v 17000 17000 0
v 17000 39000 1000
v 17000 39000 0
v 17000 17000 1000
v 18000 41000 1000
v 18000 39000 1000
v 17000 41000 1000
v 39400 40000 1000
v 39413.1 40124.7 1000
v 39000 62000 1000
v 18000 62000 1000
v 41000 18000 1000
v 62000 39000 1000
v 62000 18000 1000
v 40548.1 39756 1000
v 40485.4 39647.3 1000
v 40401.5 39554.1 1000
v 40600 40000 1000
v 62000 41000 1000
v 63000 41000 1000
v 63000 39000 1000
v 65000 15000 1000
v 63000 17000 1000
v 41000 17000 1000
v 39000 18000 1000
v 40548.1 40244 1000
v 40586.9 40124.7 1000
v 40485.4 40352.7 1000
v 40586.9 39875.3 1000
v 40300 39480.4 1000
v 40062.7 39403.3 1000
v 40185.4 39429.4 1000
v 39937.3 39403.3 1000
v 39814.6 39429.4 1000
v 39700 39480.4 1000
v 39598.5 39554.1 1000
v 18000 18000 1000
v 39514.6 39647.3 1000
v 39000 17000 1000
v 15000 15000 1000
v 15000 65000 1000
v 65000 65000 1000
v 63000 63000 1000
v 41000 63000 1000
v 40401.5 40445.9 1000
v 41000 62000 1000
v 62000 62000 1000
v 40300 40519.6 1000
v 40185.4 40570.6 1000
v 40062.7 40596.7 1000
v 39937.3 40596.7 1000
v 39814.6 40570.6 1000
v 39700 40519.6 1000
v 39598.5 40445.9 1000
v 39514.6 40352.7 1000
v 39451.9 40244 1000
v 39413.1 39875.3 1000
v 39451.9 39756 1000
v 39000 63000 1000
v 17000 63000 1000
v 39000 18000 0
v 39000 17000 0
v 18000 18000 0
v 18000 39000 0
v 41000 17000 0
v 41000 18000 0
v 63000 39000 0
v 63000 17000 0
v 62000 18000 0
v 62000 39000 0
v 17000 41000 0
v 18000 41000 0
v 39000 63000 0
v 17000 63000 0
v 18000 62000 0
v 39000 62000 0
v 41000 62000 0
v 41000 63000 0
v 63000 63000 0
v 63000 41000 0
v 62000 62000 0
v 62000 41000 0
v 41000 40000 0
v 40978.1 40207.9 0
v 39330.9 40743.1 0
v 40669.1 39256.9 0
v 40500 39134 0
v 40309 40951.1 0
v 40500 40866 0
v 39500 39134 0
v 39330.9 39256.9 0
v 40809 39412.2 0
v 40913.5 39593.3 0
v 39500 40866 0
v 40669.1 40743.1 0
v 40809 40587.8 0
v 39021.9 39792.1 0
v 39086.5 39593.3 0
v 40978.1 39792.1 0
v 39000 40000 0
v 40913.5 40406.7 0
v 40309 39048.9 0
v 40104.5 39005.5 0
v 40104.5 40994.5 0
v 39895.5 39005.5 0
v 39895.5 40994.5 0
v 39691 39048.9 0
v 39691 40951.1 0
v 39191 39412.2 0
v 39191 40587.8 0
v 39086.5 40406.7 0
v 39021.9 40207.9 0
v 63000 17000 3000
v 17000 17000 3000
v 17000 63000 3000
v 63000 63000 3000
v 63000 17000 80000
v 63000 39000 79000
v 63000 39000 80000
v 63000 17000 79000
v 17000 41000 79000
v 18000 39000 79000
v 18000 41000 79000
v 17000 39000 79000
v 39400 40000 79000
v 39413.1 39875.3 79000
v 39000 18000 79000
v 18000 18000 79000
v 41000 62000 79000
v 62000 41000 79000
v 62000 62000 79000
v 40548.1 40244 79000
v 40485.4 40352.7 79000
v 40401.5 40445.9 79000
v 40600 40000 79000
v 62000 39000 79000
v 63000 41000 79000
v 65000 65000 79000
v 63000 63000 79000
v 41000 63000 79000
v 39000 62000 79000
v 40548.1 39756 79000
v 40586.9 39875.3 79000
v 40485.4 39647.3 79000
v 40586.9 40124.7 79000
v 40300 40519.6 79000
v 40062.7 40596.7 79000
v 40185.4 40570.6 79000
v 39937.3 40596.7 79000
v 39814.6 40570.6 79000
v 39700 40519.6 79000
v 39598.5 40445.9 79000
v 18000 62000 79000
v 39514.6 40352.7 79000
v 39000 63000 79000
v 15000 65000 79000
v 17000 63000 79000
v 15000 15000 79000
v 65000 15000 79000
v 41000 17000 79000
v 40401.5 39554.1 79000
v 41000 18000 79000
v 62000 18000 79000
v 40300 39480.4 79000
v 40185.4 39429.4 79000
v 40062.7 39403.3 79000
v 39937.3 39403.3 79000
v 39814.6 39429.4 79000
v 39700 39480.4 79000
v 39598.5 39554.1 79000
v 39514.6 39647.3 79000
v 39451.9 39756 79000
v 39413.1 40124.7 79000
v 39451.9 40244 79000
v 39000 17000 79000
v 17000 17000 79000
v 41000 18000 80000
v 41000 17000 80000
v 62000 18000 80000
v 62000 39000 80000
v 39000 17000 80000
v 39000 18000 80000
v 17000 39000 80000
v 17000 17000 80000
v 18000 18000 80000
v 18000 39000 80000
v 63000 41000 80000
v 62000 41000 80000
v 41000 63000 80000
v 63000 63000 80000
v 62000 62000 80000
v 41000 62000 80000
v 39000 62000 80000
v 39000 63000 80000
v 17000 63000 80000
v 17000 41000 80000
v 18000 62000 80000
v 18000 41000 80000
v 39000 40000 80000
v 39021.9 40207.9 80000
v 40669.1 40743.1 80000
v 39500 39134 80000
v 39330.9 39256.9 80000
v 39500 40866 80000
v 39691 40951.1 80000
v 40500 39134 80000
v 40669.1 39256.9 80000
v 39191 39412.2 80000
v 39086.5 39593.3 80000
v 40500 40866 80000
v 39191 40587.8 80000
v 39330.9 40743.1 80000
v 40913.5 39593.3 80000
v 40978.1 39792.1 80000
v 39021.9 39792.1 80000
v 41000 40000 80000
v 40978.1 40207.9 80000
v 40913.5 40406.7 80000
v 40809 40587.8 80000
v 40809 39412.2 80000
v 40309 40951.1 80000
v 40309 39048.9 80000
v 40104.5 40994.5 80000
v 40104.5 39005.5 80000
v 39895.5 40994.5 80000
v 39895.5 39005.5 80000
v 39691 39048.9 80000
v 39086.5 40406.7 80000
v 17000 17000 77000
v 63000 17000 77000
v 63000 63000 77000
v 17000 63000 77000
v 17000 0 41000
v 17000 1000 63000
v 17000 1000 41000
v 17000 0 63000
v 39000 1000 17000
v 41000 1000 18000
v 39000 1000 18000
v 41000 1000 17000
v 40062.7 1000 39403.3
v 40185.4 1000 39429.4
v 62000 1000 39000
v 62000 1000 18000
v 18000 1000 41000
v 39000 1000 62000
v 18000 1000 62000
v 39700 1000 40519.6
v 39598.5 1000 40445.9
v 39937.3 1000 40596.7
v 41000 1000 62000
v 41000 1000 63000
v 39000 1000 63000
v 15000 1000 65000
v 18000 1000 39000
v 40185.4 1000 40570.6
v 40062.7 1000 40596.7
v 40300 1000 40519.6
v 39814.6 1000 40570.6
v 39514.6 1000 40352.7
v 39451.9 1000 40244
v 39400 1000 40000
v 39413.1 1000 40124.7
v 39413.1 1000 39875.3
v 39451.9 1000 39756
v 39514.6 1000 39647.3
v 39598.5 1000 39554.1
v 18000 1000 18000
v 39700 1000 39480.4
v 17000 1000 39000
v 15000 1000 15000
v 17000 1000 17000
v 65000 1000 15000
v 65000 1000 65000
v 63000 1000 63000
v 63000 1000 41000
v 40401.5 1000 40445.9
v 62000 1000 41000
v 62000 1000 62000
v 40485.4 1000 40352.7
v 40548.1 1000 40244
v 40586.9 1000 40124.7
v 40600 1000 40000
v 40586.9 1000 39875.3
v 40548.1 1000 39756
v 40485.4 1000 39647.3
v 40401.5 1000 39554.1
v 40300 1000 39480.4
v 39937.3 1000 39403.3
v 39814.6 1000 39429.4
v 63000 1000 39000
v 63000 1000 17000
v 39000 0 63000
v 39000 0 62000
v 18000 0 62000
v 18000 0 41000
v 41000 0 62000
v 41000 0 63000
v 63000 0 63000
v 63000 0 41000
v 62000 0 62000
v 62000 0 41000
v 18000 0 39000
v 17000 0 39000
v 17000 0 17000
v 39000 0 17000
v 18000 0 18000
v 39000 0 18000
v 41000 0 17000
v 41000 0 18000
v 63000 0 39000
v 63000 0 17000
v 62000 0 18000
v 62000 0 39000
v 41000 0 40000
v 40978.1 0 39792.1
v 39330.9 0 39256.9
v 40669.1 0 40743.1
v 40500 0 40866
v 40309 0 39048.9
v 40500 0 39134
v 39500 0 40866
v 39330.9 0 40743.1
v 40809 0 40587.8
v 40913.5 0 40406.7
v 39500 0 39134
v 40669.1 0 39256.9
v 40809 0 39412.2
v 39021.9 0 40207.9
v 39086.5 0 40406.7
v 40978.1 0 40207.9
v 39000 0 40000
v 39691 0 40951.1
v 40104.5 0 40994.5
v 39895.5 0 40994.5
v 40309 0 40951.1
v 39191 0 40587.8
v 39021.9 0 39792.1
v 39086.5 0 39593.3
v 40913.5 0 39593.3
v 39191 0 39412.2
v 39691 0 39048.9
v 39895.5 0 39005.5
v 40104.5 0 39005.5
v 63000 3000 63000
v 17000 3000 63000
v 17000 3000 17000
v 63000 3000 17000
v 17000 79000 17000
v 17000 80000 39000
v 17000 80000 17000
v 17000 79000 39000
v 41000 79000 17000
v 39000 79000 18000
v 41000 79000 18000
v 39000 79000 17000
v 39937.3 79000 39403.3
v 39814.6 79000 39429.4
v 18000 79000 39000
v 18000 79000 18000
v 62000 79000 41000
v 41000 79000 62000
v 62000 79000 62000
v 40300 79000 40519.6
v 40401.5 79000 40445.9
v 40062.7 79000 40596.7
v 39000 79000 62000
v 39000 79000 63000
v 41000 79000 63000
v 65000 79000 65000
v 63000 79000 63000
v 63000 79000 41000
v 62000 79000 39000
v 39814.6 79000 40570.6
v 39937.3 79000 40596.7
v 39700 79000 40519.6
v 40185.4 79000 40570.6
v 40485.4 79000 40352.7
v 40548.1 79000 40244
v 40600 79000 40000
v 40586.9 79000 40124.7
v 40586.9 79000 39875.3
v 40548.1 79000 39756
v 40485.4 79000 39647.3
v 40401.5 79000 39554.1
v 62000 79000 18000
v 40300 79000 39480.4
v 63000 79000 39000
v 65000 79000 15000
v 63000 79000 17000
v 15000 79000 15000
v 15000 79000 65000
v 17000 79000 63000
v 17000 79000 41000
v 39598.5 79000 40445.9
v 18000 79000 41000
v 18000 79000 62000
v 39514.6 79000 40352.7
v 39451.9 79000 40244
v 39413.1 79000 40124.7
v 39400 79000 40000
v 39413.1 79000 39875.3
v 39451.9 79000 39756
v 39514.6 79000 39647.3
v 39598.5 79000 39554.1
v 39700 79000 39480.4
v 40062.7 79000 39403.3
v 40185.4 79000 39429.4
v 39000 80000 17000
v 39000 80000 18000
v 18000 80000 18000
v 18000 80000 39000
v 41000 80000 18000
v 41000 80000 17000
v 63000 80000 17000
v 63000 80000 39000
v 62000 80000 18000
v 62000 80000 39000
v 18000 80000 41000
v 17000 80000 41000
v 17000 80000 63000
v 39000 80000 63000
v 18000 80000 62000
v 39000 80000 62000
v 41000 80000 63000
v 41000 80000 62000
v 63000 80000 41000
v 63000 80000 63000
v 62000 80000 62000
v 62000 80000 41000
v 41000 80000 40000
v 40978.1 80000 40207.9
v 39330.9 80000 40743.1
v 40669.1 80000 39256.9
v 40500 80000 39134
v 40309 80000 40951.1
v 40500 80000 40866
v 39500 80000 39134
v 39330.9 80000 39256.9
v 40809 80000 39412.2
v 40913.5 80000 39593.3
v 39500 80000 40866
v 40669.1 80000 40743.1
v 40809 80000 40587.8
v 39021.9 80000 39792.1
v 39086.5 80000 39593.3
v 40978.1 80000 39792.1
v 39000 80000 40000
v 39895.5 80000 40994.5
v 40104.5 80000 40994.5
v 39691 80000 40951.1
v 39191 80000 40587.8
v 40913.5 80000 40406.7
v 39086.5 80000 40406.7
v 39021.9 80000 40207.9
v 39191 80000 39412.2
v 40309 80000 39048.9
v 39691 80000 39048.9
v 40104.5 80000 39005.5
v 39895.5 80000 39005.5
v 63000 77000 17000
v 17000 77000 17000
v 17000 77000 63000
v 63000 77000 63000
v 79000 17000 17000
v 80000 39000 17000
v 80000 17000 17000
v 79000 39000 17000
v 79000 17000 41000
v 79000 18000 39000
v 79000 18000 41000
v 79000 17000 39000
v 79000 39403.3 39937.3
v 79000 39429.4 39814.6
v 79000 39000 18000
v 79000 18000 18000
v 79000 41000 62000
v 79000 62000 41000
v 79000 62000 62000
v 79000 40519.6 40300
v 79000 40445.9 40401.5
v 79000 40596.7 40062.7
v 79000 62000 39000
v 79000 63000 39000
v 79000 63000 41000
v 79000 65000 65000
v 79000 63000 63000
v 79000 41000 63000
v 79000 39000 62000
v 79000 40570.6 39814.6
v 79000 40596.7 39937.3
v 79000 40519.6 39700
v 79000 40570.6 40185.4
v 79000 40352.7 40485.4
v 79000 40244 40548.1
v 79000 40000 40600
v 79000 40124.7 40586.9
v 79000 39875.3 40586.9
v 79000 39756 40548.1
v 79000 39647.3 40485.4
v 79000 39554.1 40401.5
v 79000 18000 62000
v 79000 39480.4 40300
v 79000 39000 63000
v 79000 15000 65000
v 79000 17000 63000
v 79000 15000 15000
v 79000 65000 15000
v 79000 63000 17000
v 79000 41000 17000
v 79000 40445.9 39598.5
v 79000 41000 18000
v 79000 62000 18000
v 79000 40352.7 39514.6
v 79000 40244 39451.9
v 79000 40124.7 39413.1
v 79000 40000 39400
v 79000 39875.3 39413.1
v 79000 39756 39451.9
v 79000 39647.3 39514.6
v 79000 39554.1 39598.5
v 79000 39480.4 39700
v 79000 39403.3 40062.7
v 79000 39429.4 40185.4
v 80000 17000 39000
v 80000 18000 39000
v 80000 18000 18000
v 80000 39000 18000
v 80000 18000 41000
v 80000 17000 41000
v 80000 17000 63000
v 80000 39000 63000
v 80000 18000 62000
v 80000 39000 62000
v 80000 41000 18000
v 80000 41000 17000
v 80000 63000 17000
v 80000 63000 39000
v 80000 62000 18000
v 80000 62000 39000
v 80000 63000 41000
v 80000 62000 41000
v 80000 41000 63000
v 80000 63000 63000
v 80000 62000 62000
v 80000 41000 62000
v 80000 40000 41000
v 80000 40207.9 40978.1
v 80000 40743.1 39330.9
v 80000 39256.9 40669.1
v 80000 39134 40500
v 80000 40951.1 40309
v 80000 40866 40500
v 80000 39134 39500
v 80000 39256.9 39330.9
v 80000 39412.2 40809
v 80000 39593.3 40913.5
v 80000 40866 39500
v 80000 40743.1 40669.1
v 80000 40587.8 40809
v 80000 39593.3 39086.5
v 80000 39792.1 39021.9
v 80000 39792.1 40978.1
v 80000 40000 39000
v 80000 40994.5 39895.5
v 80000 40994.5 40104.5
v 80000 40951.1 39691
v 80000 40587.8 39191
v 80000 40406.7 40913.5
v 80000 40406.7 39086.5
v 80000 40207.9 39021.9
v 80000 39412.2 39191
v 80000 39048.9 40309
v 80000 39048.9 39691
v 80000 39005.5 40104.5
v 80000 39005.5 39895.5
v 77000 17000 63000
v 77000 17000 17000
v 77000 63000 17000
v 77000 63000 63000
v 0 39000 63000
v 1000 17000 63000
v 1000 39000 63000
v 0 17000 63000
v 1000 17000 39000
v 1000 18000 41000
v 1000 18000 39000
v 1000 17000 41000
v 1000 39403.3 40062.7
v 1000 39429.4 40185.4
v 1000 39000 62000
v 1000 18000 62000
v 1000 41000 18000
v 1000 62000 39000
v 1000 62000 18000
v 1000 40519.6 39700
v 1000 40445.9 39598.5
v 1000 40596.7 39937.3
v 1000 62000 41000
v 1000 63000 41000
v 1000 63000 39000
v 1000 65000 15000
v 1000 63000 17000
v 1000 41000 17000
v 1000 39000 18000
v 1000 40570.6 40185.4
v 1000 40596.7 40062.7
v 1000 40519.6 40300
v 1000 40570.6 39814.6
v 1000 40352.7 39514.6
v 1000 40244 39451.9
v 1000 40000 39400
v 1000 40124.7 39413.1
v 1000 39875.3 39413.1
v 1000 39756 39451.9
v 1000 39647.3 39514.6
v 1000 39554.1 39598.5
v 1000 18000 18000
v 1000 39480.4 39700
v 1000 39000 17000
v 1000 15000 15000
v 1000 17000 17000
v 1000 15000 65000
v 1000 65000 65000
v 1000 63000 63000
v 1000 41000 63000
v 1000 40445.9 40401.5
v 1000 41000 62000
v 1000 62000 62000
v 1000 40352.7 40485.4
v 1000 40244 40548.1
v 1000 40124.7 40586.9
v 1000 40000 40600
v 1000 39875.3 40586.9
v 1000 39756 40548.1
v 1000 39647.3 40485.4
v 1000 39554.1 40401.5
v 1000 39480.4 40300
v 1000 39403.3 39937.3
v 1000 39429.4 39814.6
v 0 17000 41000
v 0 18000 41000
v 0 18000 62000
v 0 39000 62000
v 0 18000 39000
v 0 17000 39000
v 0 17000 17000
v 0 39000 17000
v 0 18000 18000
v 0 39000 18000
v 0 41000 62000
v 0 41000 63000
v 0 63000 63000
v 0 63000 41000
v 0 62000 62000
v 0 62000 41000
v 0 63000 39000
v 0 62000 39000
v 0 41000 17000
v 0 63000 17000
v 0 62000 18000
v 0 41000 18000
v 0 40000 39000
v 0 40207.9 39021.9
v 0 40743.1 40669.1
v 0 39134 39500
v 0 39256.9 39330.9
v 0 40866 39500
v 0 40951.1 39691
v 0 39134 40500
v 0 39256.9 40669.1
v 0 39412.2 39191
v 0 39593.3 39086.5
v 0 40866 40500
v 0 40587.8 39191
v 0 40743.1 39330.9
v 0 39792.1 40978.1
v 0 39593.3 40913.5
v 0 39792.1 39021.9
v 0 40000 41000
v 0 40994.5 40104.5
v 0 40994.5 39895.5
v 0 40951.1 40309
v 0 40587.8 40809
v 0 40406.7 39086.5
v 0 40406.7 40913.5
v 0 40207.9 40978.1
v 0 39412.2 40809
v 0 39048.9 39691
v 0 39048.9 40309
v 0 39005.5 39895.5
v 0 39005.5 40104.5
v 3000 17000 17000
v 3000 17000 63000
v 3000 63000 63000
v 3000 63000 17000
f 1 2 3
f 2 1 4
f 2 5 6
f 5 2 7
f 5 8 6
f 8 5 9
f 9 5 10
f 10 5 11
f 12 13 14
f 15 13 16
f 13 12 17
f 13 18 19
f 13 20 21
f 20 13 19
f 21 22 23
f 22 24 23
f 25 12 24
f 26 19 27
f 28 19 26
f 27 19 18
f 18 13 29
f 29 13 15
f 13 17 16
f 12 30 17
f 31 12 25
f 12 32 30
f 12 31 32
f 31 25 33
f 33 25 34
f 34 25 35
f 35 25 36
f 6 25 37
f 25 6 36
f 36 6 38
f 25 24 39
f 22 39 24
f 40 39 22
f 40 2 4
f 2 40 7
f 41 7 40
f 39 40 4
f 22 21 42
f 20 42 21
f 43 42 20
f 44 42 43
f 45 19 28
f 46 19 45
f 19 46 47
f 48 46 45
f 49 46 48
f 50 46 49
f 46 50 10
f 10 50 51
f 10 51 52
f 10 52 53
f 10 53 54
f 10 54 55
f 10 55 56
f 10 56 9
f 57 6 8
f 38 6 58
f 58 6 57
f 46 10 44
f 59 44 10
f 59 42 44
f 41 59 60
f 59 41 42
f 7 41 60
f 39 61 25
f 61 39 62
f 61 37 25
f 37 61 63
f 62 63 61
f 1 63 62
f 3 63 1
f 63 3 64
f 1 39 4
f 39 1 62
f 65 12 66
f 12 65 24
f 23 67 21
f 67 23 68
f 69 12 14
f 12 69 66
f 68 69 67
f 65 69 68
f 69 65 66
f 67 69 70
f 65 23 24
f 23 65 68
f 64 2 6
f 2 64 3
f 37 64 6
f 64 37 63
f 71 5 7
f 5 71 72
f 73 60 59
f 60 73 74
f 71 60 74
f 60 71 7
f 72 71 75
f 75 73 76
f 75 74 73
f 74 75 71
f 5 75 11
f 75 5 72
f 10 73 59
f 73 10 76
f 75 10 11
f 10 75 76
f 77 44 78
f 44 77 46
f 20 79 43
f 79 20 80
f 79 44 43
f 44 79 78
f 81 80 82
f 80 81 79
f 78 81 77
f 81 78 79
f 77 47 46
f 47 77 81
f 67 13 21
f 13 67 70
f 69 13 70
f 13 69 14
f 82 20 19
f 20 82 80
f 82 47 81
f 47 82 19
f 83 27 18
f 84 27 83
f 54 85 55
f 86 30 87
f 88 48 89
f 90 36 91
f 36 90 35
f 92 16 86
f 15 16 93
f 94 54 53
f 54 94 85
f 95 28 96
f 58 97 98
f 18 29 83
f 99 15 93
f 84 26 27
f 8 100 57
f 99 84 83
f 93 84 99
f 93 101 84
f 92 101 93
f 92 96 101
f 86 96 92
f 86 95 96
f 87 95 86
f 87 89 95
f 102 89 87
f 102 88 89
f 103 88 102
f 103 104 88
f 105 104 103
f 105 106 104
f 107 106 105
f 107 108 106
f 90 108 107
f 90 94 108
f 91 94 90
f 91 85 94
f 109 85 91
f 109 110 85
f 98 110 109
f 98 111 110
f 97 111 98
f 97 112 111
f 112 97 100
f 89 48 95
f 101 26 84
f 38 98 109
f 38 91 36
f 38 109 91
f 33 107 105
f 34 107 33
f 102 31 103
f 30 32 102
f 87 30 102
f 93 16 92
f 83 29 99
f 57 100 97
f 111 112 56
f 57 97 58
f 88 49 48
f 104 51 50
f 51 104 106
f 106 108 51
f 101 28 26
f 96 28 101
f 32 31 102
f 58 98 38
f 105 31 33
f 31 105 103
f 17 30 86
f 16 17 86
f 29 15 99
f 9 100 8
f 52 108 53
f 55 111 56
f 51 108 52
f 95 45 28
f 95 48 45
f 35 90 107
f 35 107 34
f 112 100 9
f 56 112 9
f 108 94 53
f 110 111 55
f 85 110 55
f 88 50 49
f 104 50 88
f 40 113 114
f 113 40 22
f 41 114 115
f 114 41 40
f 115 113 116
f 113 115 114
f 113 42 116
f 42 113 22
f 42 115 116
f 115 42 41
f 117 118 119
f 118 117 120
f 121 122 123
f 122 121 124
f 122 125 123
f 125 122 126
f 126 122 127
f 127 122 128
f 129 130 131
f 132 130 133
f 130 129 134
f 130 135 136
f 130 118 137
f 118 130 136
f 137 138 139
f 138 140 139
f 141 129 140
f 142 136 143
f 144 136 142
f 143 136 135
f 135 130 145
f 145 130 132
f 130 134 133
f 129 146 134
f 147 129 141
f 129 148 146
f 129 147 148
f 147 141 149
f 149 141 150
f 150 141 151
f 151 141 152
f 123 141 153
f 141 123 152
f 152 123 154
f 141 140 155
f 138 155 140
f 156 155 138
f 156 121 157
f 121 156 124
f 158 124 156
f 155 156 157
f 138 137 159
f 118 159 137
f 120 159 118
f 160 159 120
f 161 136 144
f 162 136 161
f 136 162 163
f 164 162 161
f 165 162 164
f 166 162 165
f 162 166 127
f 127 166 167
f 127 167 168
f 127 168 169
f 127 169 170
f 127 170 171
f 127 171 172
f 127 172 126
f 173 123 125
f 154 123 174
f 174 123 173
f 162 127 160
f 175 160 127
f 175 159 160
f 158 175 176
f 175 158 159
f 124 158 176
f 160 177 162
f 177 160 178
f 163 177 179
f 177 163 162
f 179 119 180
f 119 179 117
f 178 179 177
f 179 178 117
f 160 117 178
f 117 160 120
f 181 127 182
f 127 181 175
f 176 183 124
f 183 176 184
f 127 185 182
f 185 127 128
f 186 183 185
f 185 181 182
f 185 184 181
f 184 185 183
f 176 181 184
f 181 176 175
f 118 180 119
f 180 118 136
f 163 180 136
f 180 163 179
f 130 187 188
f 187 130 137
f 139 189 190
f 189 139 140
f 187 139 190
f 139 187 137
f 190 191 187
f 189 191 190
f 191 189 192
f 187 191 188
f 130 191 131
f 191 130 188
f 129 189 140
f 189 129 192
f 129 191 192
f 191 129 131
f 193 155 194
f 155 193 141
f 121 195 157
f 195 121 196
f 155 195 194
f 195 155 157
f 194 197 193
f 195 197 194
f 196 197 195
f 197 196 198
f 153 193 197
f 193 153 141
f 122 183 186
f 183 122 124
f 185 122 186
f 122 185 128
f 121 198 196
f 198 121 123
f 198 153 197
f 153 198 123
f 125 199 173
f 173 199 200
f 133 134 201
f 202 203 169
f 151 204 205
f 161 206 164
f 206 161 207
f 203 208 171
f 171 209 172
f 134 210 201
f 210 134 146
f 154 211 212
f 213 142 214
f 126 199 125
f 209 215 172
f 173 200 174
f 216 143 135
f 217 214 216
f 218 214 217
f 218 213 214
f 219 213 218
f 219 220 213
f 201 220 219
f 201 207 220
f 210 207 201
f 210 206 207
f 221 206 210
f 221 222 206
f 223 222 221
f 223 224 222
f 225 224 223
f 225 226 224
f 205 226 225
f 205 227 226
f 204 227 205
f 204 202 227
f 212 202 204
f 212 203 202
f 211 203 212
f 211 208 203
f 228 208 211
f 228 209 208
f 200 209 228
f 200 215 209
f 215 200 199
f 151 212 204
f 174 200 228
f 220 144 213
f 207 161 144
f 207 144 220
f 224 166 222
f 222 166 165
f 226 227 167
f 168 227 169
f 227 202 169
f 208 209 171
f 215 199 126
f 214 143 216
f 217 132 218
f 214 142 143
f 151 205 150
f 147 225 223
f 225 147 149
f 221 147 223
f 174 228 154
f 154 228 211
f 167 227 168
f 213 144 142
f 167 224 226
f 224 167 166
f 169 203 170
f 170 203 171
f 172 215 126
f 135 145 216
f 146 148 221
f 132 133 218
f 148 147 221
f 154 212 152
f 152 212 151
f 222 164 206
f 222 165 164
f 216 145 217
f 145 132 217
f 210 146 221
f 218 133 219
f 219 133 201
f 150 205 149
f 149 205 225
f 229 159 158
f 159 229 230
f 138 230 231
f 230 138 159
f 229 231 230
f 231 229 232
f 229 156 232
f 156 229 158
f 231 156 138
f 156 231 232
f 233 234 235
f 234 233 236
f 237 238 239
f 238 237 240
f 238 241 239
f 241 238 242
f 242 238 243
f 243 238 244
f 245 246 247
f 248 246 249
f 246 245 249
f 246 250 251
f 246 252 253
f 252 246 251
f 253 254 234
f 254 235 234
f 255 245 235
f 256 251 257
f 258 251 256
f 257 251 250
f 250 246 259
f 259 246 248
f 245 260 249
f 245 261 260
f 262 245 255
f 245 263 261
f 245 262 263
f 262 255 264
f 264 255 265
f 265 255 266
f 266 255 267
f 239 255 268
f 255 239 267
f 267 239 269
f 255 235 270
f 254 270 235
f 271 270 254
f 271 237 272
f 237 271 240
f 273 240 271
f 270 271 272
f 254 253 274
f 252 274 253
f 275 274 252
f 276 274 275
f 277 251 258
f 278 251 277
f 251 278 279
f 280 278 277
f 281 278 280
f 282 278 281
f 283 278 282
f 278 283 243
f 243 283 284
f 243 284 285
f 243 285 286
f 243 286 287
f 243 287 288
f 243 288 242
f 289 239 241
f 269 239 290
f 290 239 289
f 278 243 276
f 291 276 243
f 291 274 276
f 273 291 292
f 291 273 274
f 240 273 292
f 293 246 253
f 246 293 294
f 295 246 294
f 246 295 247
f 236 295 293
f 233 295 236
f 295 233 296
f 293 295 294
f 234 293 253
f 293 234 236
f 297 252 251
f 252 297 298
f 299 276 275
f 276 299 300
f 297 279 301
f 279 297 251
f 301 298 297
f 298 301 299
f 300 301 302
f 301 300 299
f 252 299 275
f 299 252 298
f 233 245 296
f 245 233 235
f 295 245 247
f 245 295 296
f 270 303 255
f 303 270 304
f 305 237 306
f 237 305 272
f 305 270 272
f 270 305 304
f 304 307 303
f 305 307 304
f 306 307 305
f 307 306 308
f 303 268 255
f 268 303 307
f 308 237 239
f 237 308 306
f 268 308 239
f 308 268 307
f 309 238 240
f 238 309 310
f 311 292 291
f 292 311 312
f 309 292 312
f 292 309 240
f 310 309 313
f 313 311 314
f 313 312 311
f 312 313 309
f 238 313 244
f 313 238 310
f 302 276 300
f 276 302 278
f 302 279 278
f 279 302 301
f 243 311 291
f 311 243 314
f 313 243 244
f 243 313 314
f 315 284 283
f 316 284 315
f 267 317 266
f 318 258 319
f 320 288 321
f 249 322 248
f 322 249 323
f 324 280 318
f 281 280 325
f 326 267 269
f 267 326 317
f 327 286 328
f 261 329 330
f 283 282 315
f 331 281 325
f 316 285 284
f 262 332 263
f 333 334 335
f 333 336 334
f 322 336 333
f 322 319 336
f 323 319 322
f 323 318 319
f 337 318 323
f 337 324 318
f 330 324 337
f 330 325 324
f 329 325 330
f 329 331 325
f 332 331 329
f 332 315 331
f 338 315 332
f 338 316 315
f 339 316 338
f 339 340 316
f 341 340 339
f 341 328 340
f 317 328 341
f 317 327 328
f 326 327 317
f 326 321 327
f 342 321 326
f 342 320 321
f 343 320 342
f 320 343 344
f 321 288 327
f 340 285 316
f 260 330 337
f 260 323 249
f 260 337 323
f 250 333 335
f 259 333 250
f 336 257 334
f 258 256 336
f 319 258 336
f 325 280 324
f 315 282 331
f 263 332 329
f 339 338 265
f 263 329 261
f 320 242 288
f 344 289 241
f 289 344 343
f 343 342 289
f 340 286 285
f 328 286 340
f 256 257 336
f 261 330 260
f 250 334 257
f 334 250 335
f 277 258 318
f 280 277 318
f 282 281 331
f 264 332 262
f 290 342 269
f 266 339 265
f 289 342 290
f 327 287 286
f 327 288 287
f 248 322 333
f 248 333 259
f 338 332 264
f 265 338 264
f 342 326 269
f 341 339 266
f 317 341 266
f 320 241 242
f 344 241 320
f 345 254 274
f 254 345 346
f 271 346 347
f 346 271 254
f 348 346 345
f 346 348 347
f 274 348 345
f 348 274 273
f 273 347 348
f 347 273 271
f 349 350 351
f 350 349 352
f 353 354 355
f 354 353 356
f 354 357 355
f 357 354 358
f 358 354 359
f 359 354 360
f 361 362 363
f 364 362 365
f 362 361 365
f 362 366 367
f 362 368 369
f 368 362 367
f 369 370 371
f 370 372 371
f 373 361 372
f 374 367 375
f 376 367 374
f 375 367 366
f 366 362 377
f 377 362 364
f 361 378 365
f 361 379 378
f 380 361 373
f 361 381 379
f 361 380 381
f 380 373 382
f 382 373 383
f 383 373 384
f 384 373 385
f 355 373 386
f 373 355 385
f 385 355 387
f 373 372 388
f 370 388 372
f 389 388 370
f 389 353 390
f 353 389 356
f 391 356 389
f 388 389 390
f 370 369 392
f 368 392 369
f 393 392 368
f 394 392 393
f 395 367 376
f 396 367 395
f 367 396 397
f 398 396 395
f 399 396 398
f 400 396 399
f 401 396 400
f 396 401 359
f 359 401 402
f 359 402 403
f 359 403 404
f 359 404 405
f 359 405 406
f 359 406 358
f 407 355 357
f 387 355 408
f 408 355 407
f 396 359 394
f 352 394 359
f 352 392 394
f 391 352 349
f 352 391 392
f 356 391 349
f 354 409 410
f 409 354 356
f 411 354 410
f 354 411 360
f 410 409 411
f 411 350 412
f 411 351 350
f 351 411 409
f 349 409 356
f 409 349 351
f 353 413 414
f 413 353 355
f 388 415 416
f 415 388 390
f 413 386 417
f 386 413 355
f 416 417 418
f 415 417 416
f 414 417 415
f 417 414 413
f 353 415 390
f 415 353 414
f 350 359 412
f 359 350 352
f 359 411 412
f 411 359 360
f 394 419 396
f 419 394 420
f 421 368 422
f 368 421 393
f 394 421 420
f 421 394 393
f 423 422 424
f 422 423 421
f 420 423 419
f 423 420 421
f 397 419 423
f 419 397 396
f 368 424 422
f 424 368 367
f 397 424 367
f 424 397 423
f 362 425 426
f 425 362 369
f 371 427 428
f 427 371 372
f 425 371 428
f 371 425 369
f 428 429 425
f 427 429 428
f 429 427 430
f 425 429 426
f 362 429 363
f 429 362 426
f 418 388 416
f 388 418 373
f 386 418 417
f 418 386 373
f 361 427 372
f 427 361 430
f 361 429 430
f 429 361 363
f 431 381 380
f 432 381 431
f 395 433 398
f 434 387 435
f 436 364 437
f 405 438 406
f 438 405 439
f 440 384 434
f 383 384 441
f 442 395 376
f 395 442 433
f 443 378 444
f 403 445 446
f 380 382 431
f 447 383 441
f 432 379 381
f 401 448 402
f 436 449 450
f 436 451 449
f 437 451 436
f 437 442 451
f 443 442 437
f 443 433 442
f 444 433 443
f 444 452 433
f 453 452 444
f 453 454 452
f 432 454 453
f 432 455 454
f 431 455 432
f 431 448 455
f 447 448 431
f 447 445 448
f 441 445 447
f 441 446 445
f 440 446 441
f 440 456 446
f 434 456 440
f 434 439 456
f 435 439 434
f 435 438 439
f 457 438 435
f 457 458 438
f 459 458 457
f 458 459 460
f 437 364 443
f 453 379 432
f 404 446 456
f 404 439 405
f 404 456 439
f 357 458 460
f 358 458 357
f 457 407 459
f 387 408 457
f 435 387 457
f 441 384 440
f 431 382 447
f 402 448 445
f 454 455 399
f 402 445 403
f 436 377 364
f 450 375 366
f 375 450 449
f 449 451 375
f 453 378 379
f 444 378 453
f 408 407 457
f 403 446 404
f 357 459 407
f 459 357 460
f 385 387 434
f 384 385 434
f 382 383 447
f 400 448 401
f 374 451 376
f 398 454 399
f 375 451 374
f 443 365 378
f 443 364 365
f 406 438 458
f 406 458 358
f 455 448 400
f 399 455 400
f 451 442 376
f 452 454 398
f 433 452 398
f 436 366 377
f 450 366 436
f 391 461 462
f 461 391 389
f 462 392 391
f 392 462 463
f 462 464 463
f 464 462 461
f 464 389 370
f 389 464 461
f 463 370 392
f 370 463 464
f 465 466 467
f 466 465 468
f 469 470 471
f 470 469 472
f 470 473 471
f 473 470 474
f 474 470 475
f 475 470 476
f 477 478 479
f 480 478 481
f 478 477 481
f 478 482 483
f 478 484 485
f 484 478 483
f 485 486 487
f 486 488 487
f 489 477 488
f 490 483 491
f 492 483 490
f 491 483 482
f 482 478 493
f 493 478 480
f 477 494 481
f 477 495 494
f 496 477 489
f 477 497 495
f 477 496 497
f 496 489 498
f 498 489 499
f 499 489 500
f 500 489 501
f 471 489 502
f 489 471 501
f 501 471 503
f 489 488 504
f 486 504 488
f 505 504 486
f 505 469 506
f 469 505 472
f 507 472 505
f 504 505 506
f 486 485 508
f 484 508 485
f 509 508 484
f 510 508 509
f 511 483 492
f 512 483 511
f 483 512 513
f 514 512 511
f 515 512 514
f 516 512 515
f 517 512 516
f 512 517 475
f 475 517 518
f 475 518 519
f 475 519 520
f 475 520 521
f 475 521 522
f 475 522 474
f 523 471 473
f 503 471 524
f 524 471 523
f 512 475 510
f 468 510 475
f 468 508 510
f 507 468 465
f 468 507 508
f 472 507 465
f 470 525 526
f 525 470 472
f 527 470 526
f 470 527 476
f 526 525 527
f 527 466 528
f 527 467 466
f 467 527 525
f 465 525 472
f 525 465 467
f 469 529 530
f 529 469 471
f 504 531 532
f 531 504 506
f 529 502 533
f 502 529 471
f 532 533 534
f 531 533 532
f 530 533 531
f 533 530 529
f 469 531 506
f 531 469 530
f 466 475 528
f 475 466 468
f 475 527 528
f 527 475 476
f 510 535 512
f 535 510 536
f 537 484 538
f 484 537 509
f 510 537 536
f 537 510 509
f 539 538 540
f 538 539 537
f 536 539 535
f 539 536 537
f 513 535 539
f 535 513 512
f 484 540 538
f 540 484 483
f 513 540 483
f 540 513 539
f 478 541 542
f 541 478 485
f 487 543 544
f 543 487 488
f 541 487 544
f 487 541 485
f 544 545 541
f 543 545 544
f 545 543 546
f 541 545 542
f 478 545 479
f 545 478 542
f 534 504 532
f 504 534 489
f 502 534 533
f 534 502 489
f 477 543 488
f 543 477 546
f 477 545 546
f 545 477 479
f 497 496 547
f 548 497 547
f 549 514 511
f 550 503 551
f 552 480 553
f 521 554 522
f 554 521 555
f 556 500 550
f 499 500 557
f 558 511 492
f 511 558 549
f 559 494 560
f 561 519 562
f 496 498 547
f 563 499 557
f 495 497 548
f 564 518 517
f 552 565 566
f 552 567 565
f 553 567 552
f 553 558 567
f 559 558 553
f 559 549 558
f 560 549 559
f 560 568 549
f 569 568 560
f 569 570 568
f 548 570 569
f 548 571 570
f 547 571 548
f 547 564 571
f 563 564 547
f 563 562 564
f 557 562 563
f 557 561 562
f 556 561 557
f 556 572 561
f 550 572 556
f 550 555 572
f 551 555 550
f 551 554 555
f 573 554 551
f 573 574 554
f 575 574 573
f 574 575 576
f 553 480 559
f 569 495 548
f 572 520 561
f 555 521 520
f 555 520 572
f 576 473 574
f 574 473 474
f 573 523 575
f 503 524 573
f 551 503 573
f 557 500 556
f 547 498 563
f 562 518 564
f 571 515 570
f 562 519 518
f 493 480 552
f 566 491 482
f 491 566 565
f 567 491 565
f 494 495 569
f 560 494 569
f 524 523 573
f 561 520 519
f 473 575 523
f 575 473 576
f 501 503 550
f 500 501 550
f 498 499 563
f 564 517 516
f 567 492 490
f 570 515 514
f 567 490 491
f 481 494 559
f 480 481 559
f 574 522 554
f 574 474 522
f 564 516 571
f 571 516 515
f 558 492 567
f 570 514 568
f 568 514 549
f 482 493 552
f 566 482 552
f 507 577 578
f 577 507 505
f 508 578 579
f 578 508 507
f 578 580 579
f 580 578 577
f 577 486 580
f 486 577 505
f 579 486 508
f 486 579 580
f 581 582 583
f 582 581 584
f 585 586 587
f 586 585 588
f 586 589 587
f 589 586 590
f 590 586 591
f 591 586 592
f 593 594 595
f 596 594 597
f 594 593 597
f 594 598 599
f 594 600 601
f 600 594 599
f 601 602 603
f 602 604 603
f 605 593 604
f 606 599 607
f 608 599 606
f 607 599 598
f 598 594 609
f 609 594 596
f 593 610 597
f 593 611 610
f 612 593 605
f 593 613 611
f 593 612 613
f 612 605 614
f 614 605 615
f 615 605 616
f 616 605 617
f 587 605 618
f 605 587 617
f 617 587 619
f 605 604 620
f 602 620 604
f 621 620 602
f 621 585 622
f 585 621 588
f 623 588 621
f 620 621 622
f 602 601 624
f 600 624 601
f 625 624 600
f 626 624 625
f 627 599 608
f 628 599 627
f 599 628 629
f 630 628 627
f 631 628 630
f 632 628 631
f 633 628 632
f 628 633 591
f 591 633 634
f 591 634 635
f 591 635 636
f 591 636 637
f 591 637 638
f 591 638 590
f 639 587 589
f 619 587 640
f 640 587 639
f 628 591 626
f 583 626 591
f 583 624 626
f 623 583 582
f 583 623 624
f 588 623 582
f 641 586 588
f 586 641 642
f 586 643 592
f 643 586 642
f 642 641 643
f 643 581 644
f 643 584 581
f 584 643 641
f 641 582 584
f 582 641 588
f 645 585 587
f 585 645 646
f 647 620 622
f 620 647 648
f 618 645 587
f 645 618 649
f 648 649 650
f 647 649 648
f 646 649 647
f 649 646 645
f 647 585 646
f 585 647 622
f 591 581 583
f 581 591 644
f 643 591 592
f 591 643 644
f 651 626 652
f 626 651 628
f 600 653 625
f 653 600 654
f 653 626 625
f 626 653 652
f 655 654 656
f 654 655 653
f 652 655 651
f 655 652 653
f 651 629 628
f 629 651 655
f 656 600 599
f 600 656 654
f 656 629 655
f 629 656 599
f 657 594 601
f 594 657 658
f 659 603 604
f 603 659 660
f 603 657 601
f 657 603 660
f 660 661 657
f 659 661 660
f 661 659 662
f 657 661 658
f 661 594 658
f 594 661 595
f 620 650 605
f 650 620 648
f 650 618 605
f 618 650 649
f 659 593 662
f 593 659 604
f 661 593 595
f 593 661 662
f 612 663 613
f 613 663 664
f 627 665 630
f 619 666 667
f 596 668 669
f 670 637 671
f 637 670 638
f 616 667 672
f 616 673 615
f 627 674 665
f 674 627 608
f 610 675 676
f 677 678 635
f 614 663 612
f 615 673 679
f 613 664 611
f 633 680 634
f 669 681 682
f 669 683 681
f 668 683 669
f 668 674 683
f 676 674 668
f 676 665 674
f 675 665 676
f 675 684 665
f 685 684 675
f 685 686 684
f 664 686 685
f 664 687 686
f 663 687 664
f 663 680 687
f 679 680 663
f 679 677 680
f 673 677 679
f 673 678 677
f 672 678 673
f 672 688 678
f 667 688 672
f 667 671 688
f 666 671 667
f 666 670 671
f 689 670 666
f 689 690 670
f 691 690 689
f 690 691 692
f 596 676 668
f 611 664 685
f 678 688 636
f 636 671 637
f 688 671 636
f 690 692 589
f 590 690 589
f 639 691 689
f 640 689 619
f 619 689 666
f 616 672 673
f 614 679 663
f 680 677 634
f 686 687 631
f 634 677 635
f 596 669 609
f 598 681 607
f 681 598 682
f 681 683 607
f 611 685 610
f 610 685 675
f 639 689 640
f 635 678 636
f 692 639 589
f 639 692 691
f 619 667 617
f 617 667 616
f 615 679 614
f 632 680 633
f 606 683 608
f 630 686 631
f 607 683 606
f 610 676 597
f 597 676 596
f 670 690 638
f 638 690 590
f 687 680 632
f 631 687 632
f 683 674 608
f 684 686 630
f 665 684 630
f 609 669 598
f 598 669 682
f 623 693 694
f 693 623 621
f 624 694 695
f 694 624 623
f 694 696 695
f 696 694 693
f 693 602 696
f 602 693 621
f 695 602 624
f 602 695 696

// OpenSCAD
// first version : plate for ware
// units : micrometers = 10^-6 m = 10^-3 mm
/* 
    3D
   **********   
  3     2
    7 6
    4 5
  0     1
 
    Dev
   **********   
   
   7 6
   4 5 6 7 4
   0 1 2 3 0
   3 2

    Coords
   **********   
   
0,1,3,2
4,5,1,0
7,6,5,4
5,6,2,1
6,7,3,2
7,4,0,3

*/

Show_Rendering_Error=true; 
// hauptplatte
l       = 50000             ; // length = x axis
w       = l                 ; // width = y axis
t       = 2000              ; // thickness
// central point
radius  = 1000              ; // radius
height  = 1000              ; // height
// borders
thick   = 1000              ; // thickness
// all plate 
delta   = 15000             ; // delta beetween plates



translate([delta,delta,0])   
    all_plate(l,w,t,radius,height,thick);

translate([delta+l,delta , 2* delta+ l])    
    rotate([0,180,0])
        all_plate(l,w,t,radius,height,thick);

translate([delta,0 , delta +l ])    
    rotate([-90,0,0])
        all_plate(l,l,t,radius,height,thick);

translate([delta, 2*delta + w , delta ])    
    rotate([90,0,0])
        all_plate(l,l,t,radius,height,thick);


translate([2*delta+l,delta , delta])    
    rotate([0,-90,0])
        all_plate(l,w,t,radius,height,thick);
translate([0, delta, delta+l])
    rotate([0,90,0])
        all_plate(l,w,t,radius,height,thick);


module all_plate(l,w,t,radius,height,thick){
    translate([l/2, w/2, 0]){ 
        color([1,0,0]) 
        cylinder(height,radius, radius*0.6); 
        };
    translate([t,t,0])
        border(l,thick, height, radius, t );

    translate([t+thick,t,0])
        rotate([0,0,90])
            border(w,thick, height, radius, t );

    translate([t,w-2*t+thick,0])
        border(l,thick, height, radius, t );

    translate([l-t,t,0])
        rotate([0,0,90])
            border(w,thick, height, radius, t );
        
    translate([0,0,height]) chamfered_plate(l,w,t);
    }

module border(length, thickness, height, radius, t){
    border_length = (length-2*t-2*radius)/2 ;
    color([0,1,0])
    cube([border_length , thickness, height]);
    translate([(length-2*t-2*radius)/2+2*radius,0,0])
        color([0,0,1])
        cube([border_length, thickness, height]);
    }
    
module chamfered_plate(l,w,t){
        
    polyhedron(
        points = [
            [0      ,0      ,0],        // 0
            [l      ,0      ,0],        // 1
            [l      ,w      ,0],        // 2
            [0      ,w      ,0],        // 3
            [t      ,t      ,t],        // 4
            [l-t    ,t      ,t],        // 5
            [l-t    ,w-t    ,t],        // 6
            [t      ,w-t    ,t]         // 7
            ],
        faces = [
            [0,1,2,3],                  // bottom
            [4,5,1,0],                  // front
            [7,6,5,4],                  // top
            [5,6,2,1],                  // right
            [6,7,3,2],                  // back
            [7,4,0,3]                   // left
            ]
        );
        
    }
    
